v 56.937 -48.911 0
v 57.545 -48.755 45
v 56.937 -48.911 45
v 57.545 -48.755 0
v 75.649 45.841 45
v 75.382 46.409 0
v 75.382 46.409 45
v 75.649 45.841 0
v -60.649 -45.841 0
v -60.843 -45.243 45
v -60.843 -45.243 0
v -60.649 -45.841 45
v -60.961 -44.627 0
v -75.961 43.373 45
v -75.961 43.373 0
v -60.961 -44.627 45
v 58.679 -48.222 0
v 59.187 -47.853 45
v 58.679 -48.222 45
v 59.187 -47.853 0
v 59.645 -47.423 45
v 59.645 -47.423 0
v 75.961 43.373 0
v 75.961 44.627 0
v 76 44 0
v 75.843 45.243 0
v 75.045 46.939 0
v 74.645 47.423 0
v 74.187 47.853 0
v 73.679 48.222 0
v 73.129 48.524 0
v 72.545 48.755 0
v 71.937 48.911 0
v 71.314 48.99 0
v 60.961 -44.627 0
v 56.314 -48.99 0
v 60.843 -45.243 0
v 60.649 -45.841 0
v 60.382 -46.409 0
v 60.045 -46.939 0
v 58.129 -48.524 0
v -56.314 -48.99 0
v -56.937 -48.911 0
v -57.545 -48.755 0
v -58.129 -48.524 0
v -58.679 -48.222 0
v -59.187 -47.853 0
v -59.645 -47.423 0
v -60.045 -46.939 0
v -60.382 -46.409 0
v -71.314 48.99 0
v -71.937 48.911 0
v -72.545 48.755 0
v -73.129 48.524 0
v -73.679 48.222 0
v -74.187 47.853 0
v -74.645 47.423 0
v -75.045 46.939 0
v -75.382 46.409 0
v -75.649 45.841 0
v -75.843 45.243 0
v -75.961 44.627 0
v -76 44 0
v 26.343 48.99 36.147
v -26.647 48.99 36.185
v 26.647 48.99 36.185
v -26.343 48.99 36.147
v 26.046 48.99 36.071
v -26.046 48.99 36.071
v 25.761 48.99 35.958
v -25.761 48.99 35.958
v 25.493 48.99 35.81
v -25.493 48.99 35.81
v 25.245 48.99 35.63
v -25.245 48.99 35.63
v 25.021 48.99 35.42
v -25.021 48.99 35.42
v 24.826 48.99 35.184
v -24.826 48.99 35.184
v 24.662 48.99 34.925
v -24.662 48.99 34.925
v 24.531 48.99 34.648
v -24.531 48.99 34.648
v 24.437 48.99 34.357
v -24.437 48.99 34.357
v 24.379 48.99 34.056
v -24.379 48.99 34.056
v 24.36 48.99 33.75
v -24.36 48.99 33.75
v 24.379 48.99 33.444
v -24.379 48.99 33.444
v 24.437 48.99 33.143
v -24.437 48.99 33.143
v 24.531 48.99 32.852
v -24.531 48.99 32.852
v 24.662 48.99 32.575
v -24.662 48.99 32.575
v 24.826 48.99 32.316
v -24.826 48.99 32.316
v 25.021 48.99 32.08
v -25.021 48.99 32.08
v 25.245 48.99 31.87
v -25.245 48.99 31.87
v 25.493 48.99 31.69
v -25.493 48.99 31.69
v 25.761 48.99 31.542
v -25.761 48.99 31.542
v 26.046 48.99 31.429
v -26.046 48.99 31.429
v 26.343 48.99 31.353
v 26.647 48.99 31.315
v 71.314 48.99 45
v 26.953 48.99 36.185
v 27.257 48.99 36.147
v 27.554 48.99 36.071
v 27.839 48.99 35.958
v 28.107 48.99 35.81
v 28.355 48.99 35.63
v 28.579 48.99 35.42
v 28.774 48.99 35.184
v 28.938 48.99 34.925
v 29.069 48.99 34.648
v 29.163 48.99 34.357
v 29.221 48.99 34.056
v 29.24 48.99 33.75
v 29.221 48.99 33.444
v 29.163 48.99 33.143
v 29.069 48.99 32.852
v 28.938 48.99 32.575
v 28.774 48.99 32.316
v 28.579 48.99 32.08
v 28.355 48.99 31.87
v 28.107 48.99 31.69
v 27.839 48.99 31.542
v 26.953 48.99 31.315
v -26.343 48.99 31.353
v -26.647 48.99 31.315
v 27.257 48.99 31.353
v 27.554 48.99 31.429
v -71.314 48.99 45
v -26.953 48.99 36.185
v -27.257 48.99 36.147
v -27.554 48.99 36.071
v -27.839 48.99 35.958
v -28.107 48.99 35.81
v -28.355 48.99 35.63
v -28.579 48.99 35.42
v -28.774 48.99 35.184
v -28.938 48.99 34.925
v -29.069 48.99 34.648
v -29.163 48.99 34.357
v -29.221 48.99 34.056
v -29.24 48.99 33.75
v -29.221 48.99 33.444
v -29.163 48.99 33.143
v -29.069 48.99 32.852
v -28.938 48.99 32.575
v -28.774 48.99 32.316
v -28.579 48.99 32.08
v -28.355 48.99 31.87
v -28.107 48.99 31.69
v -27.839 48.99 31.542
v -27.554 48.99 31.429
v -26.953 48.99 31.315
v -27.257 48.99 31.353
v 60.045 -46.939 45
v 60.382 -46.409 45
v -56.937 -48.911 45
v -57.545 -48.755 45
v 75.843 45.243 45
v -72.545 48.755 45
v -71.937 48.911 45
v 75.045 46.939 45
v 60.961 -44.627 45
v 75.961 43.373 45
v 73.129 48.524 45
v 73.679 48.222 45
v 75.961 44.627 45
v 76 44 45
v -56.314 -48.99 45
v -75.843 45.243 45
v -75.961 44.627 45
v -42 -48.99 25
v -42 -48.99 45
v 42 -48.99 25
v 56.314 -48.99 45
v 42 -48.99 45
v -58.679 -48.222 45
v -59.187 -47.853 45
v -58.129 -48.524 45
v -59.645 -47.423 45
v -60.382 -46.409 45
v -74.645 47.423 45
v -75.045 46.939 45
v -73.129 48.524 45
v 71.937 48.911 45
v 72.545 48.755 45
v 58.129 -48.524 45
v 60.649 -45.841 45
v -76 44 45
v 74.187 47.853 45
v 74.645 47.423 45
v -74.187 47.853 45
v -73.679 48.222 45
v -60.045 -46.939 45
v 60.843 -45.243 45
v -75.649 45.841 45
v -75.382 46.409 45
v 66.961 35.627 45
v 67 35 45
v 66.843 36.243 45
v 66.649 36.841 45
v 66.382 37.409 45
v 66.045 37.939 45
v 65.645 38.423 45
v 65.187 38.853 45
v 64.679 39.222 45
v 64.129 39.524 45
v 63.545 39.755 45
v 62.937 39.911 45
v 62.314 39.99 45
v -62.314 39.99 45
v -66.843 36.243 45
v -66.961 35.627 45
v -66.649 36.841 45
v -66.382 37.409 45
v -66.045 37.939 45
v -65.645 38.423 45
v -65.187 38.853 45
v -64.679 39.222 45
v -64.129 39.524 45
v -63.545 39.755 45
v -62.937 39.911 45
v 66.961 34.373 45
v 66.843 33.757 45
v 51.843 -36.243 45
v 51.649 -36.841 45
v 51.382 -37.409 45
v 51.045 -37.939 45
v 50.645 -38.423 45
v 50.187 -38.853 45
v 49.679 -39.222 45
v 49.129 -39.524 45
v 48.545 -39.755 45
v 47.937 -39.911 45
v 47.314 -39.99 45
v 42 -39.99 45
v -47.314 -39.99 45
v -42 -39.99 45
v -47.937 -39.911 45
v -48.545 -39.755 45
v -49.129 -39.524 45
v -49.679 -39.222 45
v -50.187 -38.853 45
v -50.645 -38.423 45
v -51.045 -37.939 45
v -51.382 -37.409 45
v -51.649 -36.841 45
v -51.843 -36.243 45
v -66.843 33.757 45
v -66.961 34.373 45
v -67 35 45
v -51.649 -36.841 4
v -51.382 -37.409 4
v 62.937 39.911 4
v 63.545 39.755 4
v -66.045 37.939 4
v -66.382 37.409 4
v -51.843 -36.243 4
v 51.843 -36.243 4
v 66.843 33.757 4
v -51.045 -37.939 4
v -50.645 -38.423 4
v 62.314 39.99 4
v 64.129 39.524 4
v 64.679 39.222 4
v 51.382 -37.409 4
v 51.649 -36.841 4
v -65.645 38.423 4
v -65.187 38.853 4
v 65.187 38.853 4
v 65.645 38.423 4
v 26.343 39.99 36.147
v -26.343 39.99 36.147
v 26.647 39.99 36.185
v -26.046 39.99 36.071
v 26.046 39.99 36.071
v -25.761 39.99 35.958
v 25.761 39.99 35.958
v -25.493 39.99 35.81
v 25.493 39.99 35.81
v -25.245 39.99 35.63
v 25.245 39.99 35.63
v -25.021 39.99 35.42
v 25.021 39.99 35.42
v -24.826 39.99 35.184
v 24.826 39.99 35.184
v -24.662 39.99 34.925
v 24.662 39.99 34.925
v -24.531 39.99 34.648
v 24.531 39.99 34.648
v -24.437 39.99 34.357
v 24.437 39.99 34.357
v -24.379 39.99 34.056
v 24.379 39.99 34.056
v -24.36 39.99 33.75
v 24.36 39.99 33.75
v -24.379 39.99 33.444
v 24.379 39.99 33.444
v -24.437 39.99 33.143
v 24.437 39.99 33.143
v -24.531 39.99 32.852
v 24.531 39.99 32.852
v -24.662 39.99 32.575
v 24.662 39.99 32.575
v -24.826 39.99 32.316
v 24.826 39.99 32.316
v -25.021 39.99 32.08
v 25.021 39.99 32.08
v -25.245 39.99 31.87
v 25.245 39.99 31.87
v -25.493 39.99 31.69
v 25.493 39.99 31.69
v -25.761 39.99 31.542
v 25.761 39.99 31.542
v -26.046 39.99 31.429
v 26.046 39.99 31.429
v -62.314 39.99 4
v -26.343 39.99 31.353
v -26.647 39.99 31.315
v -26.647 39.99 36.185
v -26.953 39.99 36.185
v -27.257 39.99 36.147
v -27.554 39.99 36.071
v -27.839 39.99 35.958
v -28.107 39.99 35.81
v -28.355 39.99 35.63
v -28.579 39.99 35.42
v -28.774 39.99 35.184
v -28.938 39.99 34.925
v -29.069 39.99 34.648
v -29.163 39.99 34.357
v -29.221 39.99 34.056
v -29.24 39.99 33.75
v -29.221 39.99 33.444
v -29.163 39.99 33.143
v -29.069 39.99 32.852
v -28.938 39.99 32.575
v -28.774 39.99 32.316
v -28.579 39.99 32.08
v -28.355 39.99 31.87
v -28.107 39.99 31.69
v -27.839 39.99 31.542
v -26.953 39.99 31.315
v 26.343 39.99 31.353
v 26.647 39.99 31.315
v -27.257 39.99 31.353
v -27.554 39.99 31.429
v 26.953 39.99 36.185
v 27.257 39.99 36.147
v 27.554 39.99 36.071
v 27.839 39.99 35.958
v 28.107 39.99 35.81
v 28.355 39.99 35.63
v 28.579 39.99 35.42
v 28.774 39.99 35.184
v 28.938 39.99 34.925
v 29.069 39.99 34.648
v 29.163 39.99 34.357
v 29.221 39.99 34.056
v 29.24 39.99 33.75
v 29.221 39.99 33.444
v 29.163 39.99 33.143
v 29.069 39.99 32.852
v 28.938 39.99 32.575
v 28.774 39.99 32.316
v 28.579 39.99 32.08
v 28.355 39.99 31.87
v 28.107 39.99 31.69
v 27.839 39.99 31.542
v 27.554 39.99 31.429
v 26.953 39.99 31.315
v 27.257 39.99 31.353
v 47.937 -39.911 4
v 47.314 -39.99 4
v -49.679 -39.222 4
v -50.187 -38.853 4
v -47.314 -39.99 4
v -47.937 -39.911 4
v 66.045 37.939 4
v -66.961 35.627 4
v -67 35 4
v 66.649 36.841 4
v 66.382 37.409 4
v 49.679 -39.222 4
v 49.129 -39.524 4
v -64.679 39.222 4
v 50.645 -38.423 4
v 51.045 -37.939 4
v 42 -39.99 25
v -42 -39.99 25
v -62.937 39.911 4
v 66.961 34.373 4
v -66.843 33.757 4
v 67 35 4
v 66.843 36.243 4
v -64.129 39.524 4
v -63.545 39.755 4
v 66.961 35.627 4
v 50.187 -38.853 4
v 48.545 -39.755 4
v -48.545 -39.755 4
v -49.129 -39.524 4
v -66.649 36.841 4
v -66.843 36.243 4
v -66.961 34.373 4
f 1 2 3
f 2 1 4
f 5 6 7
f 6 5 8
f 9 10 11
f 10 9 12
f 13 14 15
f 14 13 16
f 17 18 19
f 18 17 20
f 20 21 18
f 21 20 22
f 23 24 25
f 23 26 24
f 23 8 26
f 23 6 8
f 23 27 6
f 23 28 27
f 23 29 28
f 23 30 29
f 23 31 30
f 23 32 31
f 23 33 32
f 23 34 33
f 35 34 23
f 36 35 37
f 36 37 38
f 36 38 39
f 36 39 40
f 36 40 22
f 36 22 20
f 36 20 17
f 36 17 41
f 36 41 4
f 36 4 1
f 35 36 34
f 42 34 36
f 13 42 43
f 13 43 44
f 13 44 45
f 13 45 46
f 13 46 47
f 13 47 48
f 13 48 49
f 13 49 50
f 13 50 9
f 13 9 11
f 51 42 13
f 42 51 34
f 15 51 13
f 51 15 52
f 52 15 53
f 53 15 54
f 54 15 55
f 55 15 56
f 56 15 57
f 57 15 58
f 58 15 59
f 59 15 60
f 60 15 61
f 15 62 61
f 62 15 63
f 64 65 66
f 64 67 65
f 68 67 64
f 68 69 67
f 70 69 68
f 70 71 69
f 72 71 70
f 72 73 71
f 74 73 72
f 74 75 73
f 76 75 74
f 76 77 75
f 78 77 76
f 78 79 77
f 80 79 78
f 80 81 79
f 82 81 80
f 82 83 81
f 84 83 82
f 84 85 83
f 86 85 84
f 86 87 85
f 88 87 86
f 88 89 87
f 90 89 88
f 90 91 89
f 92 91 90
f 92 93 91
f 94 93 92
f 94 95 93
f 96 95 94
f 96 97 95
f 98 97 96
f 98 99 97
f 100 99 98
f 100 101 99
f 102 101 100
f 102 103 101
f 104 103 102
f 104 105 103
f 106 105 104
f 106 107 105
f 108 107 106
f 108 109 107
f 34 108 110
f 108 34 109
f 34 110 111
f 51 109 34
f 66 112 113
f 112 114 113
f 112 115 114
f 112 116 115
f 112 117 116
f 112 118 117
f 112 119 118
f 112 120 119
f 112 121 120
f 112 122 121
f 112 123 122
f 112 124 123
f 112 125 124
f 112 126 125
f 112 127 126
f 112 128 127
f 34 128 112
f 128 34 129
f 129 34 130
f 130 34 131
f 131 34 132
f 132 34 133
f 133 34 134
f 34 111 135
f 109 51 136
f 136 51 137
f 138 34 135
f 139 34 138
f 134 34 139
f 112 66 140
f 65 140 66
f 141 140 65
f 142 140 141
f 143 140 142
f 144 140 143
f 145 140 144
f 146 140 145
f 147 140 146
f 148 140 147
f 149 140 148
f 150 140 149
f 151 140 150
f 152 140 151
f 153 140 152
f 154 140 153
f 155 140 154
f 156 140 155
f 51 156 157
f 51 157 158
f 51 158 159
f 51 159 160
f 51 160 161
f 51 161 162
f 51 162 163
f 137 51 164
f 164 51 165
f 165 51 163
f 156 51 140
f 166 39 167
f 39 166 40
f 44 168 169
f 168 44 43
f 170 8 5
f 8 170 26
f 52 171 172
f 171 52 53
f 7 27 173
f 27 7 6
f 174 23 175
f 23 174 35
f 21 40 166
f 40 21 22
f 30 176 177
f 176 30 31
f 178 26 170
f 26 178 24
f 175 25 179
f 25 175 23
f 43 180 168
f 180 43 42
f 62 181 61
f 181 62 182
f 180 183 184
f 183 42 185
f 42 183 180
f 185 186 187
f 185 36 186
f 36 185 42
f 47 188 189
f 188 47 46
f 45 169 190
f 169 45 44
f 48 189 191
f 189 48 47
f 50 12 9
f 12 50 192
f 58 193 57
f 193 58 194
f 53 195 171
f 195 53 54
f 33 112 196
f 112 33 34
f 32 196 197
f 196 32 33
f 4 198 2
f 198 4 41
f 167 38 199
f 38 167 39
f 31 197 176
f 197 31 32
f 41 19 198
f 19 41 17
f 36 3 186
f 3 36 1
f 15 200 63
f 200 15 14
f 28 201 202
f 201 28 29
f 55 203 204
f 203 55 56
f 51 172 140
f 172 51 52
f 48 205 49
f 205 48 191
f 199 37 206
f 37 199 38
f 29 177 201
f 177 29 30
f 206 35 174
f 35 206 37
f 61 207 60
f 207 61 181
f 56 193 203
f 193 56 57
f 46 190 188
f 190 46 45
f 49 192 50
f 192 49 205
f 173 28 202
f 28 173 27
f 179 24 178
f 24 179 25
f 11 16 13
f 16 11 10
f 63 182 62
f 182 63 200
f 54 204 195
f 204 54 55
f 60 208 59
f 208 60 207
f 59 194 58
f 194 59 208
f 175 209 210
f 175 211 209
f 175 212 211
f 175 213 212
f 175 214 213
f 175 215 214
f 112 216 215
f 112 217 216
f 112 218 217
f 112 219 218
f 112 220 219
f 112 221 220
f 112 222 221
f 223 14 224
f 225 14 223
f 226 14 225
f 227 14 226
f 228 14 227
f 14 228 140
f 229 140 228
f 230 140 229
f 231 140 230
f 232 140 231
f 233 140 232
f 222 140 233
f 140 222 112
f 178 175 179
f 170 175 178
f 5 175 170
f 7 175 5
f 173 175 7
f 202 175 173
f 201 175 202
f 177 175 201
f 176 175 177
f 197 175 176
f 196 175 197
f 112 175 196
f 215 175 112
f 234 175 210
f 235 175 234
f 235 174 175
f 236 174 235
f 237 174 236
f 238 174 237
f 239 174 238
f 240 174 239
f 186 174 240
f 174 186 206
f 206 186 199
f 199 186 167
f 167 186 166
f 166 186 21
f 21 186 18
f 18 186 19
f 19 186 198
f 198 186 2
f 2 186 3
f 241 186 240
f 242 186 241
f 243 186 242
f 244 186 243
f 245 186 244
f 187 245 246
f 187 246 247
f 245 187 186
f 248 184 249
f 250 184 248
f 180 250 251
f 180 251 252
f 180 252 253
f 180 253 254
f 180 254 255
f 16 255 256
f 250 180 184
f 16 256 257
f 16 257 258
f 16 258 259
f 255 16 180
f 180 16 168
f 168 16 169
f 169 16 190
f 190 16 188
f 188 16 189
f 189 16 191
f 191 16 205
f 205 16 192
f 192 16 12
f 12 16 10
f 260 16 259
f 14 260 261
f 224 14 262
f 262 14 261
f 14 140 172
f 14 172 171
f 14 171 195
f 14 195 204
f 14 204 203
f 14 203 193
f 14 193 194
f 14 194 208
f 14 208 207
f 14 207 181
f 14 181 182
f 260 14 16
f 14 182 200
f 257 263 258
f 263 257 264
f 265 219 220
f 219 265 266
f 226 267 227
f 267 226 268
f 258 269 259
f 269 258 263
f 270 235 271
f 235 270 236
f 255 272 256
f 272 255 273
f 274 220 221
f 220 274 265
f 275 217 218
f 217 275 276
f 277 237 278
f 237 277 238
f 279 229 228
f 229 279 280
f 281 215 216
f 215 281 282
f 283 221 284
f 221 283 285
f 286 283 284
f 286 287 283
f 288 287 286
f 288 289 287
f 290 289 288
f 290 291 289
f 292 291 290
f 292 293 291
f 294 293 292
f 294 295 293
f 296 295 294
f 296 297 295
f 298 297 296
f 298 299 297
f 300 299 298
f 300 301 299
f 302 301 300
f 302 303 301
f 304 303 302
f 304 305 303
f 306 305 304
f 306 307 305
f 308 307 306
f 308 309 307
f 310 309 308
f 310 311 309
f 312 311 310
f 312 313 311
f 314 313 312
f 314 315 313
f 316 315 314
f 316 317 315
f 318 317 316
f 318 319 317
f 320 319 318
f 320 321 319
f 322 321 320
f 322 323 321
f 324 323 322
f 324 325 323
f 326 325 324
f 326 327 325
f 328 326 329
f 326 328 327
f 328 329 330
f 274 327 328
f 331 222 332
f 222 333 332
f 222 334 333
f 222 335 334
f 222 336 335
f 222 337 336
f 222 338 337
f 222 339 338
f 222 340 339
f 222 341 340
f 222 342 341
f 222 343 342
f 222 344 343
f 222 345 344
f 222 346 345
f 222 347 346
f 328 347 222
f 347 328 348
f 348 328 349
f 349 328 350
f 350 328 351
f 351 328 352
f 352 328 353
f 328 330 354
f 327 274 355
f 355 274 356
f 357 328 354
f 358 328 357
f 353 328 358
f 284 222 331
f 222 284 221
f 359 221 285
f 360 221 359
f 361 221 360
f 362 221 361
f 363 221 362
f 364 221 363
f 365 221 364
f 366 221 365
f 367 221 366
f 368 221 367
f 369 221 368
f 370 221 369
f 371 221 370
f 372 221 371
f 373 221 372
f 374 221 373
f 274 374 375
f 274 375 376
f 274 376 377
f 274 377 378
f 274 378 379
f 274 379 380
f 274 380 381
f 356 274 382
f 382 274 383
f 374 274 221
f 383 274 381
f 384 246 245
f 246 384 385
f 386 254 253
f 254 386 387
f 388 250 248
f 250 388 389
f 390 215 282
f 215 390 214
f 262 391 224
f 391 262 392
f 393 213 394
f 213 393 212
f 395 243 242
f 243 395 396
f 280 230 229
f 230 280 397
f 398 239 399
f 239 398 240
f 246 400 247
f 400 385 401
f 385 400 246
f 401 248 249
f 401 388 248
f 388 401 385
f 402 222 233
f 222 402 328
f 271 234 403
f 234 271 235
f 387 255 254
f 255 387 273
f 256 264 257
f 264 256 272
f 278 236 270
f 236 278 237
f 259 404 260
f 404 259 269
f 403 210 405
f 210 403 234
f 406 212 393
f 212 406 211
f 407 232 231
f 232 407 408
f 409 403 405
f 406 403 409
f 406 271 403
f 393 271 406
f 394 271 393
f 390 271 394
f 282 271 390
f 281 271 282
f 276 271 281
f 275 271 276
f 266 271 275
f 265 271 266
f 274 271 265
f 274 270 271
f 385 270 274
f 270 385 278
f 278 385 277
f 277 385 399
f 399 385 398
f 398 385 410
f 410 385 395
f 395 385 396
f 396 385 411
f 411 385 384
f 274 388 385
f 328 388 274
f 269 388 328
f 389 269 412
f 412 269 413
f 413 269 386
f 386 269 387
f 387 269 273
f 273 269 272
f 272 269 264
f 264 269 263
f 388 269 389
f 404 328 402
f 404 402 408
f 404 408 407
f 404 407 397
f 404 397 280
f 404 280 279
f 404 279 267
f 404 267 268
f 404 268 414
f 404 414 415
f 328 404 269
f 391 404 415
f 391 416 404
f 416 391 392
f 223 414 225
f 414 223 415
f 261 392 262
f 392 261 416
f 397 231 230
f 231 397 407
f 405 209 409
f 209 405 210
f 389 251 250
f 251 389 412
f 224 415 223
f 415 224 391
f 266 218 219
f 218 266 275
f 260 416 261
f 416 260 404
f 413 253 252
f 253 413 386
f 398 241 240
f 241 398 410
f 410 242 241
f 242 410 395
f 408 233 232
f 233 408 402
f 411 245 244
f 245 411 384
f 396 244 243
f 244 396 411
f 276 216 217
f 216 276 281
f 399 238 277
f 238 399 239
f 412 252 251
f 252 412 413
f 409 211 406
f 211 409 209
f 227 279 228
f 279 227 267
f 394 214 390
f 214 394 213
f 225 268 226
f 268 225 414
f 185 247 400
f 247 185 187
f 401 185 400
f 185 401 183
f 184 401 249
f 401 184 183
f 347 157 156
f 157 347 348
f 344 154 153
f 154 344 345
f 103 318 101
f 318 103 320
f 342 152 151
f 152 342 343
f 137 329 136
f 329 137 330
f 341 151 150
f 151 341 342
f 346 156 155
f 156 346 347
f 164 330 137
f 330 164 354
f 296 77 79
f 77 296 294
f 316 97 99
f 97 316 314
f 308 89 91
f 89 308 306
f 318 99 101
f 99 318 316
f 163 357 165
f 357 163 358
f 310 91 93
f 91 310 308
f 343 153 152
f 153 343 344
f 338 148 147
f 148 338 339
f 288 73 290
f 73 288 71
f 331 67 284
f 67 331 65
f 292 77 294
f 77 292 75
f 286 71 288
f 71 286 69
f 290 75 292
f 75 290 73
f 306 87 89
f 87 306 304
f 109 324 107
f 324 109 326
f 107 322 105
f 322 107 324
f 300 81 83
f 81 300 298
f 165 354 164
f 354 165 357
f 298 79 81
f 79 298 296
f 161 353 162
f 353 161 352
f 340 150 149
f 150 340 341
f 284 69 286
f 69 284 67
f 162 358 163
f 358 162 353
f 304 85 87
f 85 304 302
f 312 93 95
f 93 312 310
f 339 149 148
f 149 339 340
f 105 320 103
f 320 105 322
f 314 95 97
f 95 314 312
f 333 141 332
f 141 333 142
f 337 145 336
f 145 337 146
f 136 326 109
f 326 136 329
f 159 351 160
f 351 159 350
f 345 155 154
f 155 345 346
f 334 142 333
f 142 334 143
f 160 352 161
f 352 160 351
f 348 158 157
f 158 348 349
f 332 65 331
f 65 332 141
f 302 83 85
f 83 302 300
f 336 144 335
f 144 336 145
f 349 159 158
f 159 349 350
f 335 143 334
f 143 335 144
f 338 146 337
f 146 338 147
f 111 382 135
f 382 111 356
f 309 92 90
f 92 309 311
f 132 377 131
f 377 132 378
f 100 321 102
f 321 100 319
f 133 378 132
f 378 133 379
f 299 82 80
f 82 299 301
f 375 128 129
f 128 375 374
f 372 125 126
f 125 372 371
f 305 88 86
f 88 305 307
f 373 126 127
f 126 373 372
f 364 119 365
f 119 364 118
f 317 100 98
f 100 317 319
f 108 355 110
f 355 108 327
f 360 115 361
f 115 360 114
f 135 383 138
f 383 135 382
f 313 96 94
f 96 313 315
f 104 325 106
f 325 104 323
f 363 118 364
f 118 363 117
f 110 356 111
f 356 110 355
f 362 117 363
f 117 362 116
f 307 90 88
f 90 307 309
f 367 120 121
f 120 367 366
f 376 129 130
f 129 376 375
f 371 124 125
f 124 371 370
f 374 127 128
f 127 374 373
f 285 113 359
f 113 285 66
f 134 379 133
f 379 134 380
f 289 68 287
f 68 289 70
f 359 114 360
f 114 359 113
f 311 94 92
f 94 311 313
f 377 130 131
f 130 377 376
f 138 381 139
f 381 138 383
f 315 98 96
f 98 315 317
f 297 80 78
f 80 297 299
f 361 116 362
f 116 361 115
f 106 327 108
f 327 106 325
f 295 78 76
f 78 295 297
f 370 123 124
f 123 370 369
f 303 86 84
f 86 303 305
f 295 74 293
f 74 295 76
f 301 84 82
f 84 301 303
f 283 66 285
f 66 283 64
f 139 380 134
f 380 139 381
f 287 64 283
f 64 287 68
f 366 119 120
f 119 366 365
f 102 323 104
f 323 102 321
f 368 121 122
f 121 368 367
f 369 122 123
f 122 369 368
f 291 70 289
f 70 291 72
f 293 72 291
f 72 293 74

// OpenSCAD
//outside dimensions of the box
bottom_width  = 126 + 4+2+2;    //x dimension
top_width = 100+2+2;

depth = 80;    //y dimension
height = 45;   //z dimension
$fn=50;

//additional parameters
corner_radius = 5;      // radius of box corners
wall_thickness = 4;     // total thickness of any wall
post_diameter = 10;     // internal post for screws
hole_diameter = 3;      // size of screws for lid (0=no screws)
lid_thickness= 2;       // comment out if no lid required
lid_lip = 2;            // 0 makes lid flush to top
lid_tolerance = .5;     // shrink lid so not squeaky fit

fn=50;

// make 4 "posts" about 0,0,0 offset by +/-x +/-y 
module posts(x_bottom, x_top, y,z,h,r)
{
    translate([x_bottom,y,z]){      // move post to this location
        cylinder(r = r, h = h);     // make one post
    }
    translate([-x_bottom,y,z]){     // move post to this location
        cylinder(r = r, h = h);     // make one post
    }   
    translate([-x_top,-y,z]){       // move post to this location
        cylinder(r = r, h = h);     // make one post
    }
    translate([x_top,-y,z]){        // move post to this location
        cylinder(r = r, h = h);     // make one post
    }    
}

difference(){

    difference() { // make 2 boxes one inside the other and remove "inside box" from "outside box"
        // use posts to define OUTSIDE of a solid box centered on 0,0
        hull(){
            #posts(  
                x_bottom =(bottom_width/2  + wall_thickness),
                x_top = (top_width/2 + wall_thickness),
                y=(depth/2 + wall_thickness ),
                z= 0,
                h= height,
                r = corner_radius);
        }
            
        // use posts to define INSIDE of a solid box centered on 0,0
        hull(){
            #posts(
                x_bottom =(bottom_width/2 - corner_radius),
                x_top =(top_width/2 - corner_radius),
                y=(depth/2 - corner_radius),
                z= wall_thickness, // move up to create bottom
                h= height,
                r = corner_radius);
        }

        // now we have a simple hollow box.
    }
    
    union()
    {
        GRAB_WIDTH = 25;
        translate ([-bottom_width/2 + GRAB_WIDTH, -depth/2 - wall_thickness*3, 25])
        {
            #cube( [bottom_width - GRAB_WIDTH*2, wall_thickness *4 , height]); 
        }

        HOLE_DIA=4.88;
        
        translate ([-bottom_width/5 , +depth/2 - wall_thickness , height * 3/4])
        rotate([-90, 0, 0]) #cylinder(h = wall_thickness * 5, d= HOLE_DIA);

        translate ([+bottom_width/5 , +depth/2 - wall_thickness , height * 3/4])
        rotate([-90, 0, 0]) #cylinder(h = wall_thickness * 5, d= HOLE_DIA);

    }
}
